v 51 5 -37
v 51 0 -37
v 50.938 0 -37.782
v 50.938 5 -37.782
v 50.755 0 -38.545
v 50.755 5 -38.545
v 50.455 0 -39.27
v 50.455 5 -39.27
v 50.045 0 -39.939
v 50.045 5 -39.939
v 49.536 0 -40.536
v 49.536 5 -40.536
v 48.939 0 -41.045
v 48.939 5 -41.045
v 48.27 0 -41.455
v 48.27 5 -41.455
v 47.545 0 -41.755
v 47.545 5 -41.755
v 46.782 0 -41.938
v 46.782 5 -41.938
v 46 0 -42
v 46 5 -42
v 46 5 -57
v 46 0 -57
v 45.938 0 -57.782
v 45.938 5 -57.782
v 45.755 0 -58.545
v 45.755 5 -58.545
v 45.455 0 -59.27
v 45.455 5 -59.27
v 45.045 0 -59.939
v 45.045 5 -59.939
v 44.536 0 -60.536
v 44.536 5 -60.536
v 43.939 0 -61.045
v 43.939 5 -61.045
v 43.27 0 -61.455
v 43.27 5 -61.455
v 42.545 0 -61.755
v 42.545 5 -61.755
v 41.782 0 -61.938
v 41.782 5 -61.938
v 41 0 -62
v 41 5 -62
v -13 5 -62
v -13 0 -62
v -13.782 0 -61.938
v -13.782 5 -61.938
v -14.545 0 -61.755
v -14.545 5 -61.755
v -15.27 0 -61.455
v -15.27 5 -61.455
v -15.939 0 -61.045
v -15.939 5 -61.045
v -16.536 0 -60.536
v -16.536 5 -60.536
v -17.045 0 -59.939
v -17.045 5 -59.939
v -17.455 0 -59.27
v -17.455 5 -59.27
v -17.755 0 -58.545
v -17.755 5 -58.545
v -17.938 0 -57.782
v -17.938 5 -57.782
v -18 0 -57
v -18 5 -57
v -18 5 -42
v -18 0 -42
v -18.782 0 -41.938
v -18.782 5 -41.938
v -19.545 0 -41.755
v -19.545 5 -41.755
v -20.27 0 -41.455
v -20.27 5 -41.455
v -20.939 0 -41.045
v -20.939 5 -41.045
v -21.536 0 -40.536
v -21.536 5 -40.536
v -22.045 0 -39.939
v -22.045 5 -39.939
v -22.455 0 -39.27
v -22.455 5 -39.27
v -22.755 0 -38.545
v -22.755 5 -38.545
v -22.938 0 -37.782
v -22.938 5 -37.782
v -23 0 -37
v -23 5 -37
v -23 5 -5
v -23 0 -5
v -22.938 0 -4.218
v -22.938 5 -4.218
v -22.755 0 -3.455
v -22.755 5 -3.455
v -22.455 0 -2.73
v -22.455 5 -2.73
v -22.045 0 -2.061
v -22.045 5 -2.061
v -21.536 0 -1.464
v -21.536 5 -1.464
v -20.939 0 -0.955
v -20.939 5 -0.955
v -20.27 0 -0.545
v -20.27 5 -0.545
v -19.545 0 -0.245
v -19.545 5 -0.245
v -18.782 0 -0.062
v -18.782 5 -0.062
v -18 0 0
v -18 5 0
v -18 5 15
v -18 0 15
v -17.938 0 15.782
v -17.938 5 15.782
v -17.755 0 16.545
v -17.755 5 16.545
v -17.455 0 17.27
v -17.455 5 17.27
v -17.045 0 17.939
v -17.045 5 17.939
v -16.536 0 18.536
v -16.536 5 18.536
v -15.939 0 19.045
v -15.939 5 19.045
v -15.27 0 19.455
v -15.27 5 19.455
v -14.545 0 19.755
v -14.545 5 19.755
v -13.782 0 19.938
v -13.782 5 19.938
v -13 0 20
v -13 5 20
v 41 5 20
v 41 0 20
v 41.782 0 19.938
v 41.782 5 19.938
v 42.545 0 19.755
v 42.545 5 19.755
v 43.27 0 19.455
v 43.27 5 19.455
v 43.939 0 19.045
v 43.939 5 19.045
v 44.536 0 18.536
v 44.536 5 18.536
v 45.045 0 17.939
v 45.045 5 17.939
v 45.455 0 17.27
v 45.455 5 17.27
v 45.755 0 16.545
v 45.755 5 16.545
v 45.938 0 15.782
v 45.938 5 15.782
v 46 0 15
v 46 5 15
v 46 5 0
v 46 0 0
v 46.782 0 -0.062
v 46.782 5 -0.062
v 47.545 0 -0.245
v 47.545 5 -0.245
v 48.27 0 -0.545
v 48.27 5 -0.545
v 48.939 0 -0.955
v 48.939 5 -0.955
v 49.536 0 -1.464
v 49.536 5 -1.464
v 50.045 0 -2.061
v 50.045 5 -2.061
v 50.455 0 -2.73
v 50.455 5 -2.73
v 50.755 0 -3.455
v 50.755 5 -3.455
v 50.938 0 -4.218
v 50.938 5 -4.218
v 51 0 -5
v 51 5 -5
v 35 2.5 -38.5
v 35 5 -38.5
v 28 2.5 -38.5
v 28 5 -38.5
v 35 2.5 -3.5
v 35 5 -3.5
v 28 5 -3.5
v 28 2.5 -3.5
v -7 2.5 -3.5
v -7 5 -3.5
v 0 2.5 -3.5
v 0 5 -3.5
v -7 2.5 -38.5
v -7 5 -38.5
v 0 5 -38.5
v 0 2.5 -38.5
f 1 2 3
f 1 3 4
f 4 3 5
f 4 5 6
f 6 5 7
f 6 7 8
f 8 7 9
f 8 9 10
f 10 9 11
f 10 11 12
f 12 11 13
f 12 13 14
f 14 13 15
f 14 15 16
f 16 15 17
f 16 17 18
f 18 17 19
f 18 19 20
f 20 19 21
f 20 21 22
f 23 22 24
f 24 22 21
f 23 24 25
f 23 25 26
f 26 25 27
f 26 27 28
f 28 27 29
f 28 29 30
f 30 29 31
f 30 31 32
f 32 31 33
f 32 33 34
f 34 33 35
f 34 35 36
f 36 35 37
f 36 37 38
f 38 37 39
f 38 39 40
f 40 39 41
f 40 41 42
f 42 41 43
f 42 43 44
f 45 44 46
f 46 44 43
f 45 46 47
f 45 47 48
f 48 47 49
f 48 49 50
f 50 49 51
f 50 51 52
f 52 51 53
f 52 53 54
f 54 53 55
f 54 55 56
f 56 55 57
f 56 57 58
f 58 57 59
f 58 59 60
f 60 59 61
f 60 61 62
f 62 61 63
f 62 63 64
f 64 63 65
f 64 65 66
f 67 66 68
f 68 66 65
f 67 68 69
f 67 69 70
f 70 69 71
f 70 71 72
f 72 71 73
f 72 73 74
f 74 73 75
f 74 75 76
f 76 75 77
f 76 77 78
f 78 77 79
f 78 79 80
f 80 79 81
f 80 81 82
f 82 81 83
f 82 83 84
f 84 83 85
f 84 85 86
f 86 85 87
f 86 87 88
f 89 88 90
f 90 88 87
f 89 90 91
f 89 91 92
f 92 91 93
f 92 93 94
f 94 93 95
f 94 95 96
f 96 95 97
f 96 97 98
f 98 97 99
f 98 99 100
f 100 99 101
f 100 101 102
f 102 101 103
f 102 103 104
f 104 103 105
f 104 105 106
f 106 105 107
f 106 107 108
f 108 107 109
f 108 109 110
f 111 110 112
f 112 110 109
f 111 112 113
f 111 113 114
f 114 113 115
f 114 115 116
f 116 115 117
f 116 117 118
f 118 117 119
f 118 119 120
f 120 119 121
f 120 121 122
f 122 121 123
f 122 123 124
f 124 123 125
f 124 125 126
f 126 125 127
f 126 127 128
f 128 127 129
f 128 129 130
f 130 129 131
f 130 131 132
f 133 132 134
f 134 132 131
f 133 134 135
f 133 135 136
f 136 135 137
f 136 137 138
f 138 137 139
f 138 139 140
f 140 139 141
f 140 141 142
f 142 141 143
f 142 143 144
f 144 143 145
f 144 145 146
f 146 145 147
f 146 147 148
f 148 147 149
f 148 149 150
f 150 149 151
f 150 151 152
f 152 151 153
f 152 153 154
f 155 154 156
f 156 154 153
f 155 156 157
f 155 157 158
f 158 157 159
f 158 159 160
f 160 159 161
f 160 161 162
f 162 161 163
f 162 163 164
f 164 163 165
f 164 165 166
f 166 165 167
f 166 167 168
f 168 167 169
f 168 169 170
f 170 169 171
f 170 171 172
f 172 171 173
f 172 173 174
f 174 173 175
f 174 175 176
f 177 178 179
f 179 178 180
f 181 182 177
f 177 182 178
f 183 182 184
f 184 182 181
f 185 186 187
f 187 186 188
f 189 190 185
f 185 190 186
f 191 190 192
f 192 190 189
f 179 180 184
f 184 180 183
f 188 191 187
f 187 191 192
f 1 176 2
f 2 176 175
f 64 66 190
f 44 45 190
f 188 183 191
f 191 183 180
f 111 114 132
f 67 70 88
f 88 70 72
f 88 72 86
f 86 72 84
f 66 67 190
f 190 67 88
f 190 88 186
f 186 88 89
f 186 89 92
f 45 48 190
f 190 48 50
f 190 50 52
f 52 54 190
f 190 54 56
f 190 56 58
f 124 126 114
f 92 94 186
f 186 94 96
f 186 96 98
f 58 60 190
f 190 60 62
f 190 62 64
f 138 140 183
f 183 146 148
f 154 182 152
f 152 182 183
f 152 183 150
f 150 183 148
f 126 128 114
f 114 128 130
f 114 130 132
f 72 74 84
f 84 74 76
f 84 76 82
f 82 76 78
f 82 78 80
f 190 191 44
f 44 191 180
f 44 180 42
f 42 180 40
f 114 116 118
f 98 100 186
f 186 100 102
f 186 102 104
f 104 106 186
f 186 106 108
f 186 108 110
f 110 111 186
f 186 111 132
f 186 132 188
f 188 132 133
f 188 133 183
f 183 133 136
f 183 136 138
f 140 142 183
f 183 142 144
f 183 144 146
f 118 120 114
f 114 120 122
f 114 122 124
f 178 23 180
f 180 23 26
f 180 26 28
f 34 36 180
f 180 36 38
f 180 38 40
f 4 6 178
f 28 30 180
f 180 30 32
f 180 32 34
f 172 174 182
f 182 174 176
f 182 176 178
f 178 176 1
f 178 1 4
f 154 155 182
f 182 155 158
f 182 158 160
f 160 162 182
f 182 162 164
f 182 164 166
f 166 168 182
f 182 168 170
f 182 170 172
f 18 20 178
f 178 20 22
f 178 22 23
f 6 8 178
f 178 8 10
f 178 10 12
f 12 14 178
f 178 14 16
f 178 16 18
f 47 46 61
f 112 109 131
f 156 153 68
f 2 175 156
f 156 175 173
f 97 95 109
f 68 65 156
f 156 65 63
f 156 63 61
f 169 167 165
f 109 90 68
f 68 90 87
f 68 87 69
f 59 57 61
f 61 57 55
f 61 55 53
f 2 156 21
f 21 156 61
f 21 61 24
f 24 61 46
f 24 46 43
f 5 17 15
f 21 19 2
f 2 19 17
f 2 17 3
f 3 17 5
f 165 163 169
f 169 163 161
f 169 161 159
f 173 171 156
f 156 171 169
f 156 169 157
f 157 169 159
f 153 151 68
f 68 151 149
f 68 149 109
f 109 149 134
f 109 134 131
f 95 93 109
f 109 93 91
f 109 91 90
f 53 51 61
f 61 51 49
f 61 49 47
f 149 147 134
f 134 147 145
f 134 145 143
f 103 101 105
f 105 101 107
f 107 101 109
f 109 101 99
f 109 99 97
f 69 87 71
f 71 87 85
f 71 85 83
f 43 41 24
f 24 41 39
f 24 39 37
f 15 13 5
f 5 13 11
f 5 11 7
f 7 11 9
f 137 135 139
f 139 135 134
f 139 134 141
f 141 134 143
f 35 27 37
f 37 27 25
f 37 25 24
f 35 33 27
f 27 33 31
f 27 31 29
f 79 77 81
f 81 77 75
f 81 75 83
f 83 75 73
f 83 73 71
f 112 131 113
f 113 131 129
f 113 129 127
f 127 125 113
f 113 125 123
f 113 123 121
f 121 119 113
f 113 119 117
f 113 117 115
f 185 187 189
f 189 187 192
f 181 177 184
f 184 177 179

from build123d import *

# Parameters (mm, degrees)
SKETCH2_W           = 7
SKETCH2_H           = 35
BOSS_EXTRUDE1_DEPTH = 5
SKETCH2_3_W         = 7
SKETCH2_3_H         = 35
BOSS_EXTRUDE2_DEPTH = 2.5


with BuildPart() as part:
    # Sketch2 → Boss-Extrude1 (new body)
    with BuildSketch(Plane(origin=(0, 0, 0), x_dir=(1, 0, 0), z_dir=(0, 1, 0))):
        with BuildLine():
            Line((-18, 57), (-18, 42))
            ThreePointArc((-18, 42), (-21.535533906, 40.535533906), (-23, 37))
            Line((-23, 37), (-23, 5))
            ThreePointArc((-23, 5), (-21.535533906, 1.464466094), (-18, 0))
            Line((-18, 0), (-18, -15))
            ThreePointArc((-18, -15), (-16.535533906, -18.535533906), (-13, -20))
            Line((-13, -20), (41, -20))
            ThreePointArc((41, -20), (44.535533906, -18.535533906), (46, -15))
            Line((46, -15), (46, 0))
            ThreePointArc((46, 0), (49.535533906, 1.464466094), (51, 5))
            Line((51, 5), (51, 37))
            ThreePointArc((51, 37), (49.535533906, 40.535533906), (46, 42))
            Line((46, 42), (46, 57))
            ThreePointArc((46, 57), (44.535533906, 60.535533906), (41, 62))
            Line((41, 62), (-13, 62))
            ThreePointArc((-13, 62), (-16.535533906, 60.535533906), (-18, 57))
        make_face()
        with Locations((-3.5, 21)):
            Rectangle(SKETCH2_W, SKETCH2_H, mode=Mode.SUBTRACT)
        with Locations((31.5, 21)):
            Rectangle(SKETCH2_W, SKETCH2_H, mode=Mode.SUBTRACT)
    extrude(amount=BOSS_EXTRUDE1_DEPTH)

    # Sketch2<3> → Boss-Extrude2 (add)
    with BuildSketch(Plane(origin=(0, 0, 0), x_dir=(1, 0, 0), z_dir=(0, 1, 0))):
        with Locations((-3.5, 21)):
            Rectangle(SKETCH2_3_W, SKETCH2_3_H)
        with Locations((31.5, 21)):
            Rectangle(SKETCH2_3_W, SKETCH2_3_H)
    extrude(amount=BOSS_EXTRUDE2_DEPTH)


solid = part.part
